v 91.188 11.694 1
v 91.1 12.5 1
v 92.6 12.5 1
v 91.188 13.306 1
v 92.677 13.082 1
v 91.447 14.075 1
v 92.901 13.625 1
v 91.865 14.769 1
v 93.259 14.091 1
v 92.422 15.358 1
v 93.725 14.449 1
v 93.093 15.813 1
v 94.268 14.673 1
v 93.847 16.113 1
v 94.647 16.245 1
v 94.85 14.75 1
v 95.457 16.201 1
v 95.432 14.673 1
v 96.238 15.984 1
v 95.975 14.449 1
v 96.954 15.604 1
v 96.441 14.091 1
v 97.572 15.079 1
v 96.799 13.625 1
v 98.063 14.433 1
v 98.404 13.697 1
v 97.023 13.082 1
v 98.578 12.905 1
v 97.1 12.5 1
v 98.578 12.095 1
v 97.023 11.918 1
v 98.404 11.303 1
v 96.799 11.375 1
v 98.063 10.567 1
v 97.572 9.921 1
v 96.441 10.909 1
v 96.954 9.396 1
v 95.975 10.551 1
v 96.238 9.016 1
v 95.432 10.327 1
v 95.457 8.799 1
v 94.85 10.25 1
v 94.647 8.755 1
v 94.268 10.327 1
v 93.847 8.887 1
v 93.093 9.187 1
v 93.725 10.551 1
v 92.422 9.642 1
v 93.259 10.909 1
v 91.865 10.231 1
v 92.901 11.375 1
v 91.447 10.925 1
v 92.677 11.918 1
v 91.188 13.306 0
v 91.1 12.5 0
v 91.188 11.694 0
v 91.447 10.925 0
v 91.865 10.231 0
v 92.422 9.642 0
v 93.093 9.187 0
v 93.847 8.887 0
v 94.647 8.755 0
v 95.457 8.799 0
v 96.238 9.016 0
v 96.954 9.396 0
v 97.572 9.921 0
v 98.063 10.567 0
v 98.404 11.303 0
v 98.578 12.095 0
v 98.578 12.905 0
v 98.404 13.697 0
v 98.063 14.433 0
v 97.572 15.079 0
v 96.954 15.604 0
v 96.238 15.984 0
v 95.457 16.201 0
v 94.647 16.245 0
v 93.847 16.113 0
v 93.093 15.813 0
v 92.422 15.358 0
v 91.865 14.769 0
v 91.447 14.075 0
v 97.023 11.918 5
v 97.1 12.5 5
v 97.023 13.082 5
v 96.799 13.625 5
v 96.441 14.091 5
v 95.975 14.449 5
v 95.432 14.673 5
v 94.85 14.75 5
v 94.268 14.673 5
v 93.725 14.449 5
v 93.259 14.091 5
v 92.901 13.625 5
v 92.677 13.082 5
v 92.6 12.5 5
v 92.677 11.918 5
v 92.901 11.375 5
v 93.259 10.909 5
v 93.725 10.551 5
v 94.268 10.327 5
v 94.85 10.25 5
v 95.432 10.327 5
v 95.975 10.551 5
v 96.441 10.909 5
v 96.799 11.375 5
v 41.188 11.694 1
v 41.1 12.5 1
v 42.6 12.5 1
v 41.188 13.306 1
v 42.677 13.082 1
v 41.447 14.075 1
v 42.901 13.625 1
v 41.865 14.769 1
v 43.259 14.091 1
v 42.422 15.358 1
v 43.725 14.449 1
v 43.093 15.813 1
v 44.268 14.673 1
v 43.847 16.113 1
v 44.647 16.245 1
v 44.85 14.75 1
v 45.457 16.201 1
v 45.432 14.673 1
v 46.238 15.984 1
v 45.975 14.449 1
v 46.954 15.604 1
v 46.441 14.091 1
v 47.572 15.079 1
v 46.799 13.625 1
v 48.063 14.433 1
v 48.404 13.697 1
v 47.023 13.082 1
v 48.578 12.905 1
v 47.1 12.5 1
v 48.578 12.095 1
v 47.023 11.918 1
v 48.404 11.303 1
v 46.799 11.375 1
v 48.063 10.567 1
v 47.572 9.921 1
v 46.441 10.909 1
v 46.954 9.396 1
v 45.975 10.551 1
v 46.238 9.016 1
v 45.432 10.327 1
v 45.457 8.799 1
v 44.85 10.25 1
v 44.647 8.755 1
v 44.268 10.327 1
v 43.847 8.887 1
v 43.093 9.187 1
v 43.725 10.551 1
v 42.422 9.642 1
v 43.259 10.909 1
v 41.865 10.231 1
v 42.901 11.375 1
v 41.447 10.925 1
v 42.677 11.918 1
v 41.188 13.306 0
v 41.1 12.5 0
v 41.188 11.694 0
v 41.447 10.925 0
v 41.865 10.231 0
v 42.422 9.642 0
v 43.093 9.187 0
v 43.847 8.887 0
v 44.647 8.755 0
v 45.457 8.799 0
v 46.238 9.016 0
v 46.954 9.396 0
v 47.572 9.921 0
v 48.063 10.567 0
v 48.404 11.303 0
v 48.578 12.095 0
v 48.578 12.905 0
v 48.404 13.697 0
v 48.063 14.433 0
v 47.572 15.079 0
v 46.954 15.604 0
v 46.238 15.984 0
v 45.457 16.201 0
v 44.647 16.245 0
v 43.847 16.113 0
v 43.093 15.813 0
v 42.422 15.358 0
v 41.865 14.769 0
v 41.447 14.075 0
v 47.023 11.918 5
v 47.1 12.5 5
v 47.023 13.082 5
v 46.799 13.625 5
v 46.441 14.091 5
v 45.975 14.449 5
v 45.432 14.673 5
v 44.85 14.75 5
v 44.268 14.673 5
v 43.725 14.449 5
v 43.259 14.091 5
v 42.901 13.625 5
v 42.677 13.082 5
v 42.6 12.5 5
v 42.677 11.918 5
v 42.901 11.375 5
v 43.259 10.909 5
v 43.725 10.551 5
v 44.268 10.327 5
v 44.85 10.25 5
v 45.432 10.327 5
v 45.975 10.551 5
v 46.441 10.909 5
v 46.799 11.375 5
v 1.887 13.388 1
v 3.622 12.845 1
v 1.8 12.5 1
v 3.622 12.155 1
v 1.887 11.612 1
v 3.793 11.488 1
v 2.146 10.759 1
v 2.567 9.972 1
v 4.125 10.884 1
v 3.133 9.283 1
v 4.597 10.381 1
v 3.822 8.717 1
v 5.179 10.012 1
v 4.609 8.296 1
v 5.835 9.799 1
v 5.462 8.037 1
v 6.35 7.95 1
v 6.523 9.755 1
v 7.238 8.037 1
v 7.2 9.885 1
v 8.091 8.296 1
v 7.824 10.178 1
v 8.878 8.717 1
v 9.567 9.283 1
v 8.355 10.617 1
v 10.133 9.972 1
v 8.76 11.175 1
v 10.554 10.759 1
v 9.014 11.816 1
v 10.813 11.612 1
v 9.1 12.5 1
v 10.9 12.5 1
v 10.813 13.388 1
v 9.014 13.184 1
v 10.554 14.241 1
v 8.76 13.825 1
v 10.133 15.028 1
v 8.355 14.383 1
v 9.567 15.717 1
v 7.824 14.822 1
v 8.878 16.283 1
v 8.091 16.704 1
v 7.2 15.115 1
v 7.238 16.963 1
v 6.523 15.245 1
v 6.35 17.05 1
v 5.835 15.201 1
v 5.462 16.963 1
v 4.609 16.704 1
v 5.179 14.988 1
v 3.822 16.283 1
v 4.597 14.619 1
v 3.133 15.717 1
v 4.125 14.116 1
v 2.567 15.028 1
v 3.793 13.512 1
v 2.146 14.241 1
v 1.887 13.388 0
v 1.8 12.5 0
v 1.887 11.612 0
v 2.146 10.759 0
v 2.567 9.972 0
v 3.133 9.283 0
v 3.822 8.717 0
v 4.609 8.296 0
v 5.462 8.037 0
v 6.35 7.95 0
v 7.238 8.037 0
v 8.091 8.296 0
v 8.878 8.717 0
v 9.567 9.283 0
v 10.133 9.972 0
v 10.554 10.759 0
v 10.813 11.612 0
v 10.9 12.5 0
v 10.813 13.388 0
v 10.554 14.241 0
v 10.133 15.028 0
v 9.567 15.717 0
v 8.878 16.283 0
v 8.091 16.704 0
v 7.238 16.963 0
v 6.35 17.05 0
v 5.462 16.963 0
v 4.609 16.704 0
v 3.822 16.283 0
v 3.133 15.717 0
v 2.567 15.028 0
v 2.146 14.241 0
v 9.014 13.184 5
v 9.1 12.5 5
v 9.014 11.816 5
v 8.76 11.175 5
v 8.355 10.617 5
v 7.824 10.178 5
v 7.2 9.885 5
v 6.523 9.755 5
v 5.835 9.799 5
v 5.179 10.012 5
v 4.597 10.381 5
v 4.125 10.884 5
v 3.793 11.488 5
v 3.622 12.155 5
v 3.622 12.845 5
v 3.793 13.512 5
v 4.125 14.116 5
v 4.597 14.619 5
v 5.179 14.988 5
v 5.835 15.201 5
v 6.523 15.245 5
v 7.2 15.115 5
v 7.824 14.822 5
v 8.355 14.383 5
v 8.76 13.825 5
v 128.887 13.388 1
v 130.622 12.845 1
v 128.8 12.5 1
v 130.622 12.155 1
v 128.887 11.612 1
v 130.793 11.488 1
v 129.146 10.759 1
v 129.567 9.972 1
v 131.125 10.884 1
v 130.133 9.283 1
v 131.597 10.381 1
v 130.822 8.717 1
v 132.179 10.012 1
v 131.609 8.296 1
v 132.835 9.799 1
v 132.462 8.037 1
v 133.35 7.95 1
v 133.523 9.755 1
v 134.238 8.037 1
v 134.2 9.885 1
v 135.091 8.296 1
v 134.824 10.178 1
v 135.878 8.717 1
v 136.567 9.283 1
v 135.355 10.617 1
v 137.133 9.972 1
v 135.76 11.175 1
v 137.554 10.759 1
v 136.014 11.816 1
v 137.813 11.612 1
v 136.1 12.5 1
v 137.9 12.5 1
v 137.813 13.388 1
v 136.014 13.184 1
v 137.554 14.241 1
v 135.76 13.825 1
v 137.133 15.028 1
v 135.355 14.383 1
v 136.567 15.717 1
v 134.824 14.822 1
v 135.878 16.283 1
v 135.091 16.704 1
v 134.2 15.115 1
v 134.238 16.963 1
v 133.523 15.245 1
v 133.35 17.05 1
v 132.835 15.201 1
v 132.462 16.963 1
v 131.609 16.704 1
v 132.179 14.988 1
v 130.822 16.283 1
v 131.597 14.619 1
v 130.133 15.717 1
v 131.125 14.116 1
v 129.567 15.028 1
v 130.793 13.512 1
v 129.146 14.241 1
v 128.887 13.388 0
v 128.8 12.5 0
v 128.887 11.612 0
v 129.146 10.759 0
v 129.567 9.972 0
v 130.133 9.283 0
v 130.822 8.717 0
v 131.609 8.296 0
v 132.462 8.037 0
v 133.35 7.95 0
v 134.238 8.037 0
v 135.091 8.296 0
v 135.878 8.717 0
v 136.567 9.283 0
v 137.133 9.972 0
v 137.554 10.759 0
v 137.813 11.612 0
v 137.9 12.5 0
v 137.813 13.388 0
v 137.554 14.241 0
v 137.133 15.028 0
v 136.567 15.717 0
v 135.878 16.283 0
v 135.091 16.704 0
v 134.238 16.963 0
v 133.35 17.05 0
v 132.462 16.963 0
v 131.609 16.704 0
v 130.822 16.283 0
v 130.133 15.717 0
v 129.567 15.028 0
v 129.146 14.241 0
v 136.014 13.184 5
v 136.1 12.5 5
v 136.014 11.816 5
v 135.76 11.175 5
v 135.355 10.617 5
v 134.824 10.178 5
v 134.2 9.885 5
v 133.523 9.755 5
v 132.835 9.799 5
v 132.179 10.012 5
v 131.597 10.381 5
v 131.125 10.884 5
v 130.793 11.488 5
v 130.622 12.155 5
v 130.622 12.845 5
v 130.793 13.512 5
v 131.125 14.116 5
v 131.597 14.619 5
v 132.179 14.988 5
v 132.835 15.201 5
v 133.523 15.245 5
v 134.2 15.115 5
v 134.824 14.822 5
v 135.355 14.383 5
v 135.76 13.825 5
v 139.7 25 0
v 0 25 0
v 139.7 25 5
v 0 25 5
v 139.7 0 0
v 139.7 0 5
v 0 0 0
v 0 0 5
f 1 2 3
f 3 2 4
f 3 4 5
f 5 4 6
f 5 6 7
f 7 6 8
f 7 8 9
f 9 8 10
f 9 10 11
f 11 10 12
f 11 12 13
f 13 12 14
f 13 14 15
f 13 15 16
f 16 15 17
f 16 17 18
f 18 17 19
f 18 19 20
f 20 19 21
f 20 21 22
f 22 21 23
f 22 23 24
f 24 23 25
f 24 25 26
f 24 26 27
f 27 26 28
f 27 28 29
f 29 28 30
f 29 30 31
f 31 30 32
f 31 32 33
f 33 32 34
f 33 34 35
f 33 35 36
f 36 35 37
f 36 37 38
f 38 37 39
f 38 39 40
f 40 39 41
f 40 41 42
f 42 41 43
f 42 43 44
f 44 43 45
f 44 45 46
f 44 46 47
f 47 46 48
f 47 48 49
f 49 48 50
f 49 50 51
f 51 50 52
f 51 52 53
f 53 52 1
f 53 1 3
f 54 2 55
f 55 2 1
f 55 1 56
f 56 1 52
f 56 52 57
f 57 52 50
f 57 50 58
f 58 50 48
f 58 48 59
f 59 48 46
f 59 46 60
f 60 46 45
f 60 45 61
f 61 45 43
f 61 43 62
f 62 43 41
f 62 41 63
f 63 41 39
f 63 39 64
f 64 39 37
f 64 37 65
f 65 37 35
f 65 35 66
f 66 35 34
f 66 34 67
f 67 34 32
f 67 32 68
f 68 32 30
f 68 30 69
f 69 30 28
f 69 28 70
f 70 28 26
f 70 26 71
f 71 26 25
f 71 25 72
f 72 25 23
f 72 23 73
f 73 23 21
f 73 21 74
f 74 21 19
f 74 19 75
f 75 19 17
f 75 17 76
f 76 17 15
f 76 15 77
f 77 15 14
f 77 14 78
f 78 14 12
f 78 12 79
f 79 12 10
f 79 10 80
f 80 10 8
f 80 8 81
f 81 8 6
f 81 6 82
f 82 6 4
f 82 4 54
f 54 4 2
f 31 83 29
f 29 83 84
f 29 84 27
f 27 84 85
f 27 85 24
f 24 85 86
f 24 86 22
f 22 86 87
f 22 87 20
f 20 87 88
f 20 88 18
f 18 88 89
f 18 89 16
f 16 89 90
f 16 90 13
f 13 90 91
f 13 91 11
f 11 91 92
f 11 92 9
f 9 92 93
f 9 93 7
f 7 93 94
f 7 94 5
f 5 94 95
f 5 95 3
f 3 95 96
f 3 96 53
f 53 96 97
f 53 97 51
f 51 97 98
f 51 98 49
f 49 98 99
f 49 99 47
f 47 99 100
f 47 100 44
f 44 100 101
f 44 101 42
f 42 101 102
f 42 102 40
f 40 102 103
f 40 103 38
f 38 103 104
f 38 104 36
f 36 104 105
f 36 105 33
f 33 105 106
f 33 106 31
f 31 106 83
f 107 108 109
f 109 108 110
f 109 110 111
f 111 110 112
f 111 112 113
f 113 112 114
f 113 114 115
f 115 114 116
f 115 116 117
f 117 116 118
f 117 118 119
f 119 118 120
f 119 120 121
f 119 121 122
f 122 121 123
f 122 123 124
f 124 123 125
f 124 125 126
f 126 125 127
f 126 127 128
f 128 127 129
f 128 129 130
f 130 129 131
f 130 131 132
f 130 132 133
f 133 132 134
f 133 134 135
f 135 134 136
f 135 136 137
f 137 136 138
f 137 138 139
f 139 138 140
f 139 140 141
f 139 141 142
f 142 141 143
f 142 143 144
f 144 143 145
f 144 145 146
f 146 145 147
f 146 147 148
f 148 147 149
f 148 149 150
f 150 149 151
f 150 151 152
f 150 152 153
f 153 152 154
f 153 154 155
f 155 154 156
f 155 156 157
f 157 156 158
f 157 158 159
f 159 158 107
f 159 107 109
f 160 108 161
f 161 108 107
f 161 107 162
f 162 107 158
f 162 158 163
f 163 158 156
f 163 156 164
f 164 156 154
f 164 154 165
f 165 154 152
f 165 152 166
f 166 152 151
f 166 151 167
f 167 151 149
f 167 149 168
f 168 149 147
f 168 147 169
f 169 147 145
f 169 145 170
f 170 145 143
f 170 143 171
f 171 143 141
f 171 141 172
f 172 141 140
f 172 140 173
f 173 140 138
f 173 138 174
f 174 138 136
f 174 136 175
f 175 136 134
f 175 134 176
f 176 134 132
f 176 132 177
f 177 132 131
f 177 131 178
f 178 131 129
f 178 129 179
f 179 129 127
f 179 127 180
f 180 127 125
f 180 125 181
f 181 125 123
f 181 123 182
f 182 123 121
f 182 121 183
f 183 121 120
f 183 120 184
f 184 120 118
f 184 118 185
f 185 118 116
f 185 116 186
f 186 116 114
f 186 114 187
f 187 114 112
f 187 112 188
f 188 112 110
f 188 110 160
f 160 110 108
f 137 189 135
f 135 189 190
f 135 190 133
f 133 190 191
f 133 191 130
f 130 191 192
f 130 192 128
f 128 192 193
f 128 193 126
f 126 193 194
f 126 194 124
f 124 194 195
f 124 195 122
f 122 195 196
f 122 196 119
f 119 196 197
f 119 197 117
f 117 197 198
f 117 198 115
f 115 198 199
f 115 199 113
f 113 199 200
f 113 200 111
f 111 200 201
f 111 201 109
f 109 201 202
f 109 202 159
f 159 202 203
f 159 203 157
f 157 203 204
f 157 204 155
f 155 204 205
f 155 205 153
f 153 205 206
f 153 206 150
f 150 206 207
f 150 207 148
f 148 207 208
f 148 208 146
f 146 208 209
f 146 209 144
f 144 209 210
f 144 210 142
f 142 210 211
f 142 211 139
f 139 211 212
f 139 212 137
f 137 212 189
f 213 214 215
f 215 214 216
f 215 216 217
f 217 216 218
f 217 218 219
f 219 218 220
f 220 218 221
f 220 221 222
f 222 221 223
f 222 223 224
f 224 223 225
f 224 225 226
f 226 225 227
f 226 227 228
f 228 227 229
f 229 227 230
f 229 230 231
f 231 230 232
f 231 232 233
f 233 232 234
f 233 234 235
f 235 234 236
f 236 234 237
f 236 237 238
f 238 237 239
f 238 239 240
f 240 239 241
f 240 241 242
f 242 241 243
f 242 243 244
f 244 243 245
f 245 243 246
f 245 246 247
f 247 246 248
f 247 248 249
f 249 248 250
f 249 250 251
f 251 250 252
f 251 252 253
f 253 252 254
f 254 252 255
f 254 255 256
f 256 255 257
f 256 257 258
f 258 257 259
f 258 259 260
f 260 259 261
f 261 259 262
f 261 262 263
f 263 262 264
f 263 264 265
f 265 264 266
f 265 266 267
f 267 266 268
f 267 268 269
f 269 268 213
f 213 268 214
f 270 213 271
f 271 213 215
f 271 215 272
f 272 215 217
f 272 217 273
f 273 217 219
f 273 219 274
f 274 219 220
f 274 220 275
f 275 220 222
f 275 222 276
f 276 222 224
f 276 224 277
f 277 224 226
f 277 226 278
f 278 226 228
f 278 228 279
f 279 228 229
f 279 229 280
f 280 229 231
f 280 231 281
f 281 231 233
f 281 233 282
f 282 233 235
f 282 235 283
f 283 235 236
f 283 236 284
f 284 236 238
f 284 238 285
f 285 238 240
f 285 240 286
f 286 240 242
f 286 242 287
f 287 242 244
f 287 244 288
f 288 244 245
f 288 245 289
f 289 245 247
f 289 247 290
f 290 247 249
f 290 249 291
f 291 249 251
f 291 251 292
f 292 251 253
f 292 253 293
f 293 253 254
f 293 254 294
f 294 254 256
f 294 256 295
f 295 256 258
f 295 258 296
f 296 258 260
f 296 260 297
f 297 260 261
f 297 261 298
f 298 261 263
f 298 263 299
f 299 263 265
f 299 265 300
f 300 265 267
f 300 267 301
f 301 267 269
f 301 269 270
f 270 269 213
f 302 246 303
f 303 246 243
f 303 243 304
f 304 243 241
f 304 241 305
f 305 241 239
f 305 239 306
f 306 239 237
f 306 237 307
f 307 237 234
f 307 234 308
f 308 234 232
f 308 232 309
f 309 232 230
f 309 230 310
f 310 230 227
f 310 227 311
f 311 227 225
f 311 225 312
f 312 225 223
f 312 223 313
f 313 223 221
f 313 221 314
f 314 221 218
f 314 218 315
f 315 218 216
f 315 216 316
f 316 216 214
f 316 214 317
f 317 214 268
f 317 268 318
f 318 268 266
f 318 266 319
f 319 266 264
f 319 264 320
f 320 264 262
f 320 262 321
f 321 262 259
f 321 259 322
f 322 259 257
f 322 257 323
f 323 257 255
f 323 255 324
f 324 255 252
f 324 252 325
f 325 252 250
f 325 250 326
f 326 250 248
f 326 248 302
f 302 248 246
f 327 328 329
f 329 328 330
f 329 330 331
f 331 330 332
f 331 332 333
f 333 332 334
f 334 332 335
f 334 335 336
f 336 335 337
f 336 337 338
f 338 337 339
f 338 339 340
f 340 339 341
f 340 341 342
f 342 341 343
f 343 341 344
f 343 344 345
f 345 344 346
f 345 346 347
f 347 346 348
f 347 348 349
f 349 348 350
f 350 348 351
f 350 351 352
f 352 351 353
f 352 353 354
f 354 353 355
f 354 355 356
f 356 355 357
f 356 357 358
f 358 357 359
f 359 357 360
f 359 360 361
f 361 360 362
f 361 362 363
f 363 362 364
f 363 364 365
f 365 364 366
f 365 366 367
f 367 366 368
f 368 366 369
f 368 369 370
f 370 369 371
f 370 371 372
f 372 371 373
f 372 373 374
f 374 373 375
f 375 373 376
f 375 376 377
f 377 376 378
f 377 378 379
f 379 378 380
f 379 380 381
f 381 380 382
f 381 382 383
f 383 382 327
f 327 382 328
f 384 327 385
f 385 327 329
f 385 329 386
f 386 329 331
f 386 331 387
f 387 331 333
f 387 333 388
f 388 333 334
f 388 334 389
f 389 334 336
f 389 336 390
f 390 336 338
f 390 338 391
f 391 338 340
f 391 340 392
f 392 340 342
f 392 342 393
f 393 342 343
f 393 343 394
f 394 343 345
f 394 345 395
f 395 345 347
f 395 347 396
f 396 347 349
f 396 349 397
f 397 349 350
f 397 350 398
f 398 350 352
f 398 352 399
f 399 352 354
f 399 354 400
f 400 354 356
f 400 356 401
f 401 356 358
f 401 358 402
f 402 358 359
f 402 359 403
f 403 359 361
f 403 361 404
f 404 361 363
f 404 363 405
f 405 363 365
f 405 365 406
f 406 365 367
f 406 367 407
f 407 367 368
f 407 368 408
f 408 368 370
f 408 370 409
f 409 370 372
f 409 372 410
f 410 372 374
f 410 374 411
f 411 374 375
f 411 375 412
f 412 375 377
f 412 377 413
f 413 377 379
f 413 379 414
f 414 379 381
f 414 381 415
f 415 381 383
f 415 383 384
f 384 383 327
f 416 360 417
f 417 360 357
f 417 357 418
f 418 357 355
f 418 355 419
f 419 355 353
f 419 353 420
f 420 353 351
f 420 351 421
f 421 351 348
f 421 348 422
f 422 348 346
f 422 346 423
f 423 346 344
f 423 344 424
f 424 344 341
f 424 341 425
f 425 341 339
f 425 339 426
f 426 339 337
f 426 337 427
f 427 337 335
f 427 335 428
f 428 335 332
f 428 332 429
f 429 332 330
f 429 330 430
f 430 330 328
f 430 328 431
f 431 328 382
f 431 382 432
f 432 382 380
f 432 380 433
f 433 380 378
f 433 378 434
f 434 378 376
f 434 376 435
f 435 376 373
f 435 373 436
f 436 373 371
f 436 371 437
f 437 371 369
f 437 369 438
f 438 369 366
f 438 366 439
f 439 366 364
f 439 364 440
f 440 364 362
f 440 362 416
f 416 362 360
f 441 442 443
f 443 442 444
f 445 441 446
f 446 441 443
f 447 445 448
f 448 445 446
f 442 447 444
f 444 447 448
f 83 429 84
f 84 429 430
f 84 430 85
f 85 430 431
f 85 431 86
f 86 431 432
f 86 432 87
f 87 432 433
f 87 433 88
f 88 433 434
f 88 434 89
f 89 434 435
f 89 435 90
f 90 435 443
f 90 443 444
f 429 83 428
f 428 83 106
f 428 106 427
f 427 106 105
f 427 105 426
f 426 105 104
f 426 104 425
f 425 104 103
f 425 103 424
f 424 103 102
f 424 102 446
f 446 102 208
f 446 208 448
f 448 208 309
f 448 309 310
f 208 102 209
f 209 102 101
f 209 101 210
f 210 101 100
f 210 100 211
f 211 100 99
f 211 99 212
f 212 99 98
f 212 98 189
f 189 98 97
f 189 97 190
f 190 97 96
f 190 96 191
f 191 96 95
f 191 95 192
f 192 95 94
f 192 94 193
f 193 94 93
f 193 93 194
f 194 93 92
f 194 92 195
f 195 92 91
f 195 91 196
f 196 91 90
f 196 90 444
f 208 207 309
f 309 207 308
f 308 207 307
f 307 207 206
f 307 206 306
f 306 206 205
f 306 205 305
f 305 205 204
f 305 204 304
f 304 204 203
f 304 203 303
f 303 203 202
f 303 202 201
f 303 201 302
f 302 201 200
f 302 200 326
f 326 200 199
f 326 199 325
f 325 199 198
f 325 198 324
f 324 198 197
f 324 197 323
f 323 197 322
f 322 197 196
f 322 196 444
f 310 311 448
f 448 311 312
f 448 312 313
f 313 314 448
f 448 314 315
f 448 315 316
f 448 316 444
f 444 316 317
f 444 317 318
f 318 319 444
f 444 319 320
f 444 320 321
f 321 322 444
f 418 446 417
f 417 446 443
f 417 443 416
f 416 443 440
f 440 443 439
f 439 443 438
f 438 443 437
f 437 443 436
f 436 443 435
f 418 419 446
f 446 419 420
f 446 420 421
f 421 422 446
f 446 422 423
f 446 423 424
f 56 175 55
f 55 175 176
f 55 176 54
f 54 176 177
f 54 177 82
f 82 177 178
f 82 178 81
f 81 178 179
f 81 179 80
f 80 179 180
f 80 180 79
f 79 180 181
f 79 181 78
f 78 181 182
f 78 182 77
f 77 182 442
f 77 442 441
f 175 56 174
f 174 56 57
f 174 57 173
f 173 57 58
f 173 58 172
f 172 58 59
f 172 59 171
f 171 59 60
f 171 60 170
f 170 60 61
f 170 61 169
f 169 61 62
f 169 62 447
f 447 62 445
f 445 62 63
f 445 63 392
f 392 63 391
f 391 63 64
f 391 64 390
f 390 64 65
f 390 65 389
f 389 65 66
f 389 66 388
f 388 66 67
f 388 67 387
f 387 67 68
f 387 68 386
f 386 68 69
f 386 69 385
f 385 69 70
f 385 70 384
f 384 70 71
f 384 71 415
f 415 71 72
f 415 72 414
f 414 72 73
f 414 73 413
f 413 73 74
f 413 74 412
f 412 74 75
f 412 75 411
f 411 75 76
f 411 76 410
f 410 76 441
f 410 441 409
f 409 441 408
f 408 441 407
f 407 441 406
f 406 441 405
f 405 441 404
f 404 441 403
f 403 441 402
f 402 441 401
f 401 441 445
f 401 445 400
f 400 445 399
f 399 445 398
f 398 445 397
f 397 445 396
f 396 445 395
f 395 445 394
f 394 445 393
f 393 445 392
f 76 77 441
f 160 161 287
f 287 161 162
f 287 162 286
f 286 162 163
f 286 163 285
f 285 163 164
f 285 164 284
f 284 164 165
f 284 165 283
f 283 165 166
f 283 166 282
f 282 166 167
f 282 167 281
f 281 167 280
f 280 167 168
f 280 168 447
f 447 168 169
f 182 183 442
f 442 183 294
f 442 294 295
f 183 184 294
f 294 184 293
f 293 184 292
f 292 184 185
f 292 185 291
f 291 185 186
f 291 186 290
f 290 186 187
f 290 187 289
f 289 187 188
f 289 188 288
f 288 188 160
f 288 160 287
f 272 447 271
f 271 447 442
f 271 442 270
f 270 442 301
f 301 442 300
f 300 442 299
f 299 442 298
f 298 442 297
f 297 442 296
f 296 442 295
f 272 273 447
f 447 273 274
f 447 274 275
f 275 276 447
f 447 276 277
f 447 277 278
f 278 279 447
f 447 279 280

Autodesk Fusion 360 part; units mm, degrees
sketch "Sketch1" plane through (0, 0, 0) normal (0, 0, 1) x (1, 0, 0)
  line L0 (0, 0) -> (139.7, 0)
  line L1 (139.7, 0) -> (139.7, 25)
  line L2 (139.7, 25) -> (0, 25)
  line L3 (0, 25) -> (0, 0)
  dimension "d1" = 139.7
  dimension "d2" = 25
extrude "Extrude1" add sketch "Sketch1" along normal blind 5
sketch "Sketch2" plane through (0, 0, 0) normal (0, 0, 1) x (1, 0, 0)
  point P0 (6.35, 12.5)
  point P1 (133.35, 12.5)
hole "Hole1" at (6.35, 12.5, 0) at (133.35, 12.5, 0) direction (0, 0, 1) diameter 5.5 depth 13 tip angle 118 counterbore diameter 9.1 counterbore depth 1
sketch "Sketch3" plane through (0, 0, 0) normal (0, 0, -1) x (1, 0, 0)
  circle A0 centre (6.35, -12.5) radius 4.55
  circle A1 centre (133.35, -12.5) radius 4.55
  line L0 (0, 0) -> (0, -25)
  line L1 (0, -25) -> (139.7, -25)
  line L2 (139.7, -25) -> (139.7, 0)
  line L3 (139.7, 0) -> (0, 0)
  point P0 (94.85, -12.5)
  point P1 (44.85, -12.5)
hole "Hole2" at (94.85, 12.5, 0) at (44.85, 12.5, 0) direction (0, 0, 1) diameter 4.5 end through all counterbore diameter 7.5 counterbore depth 1
